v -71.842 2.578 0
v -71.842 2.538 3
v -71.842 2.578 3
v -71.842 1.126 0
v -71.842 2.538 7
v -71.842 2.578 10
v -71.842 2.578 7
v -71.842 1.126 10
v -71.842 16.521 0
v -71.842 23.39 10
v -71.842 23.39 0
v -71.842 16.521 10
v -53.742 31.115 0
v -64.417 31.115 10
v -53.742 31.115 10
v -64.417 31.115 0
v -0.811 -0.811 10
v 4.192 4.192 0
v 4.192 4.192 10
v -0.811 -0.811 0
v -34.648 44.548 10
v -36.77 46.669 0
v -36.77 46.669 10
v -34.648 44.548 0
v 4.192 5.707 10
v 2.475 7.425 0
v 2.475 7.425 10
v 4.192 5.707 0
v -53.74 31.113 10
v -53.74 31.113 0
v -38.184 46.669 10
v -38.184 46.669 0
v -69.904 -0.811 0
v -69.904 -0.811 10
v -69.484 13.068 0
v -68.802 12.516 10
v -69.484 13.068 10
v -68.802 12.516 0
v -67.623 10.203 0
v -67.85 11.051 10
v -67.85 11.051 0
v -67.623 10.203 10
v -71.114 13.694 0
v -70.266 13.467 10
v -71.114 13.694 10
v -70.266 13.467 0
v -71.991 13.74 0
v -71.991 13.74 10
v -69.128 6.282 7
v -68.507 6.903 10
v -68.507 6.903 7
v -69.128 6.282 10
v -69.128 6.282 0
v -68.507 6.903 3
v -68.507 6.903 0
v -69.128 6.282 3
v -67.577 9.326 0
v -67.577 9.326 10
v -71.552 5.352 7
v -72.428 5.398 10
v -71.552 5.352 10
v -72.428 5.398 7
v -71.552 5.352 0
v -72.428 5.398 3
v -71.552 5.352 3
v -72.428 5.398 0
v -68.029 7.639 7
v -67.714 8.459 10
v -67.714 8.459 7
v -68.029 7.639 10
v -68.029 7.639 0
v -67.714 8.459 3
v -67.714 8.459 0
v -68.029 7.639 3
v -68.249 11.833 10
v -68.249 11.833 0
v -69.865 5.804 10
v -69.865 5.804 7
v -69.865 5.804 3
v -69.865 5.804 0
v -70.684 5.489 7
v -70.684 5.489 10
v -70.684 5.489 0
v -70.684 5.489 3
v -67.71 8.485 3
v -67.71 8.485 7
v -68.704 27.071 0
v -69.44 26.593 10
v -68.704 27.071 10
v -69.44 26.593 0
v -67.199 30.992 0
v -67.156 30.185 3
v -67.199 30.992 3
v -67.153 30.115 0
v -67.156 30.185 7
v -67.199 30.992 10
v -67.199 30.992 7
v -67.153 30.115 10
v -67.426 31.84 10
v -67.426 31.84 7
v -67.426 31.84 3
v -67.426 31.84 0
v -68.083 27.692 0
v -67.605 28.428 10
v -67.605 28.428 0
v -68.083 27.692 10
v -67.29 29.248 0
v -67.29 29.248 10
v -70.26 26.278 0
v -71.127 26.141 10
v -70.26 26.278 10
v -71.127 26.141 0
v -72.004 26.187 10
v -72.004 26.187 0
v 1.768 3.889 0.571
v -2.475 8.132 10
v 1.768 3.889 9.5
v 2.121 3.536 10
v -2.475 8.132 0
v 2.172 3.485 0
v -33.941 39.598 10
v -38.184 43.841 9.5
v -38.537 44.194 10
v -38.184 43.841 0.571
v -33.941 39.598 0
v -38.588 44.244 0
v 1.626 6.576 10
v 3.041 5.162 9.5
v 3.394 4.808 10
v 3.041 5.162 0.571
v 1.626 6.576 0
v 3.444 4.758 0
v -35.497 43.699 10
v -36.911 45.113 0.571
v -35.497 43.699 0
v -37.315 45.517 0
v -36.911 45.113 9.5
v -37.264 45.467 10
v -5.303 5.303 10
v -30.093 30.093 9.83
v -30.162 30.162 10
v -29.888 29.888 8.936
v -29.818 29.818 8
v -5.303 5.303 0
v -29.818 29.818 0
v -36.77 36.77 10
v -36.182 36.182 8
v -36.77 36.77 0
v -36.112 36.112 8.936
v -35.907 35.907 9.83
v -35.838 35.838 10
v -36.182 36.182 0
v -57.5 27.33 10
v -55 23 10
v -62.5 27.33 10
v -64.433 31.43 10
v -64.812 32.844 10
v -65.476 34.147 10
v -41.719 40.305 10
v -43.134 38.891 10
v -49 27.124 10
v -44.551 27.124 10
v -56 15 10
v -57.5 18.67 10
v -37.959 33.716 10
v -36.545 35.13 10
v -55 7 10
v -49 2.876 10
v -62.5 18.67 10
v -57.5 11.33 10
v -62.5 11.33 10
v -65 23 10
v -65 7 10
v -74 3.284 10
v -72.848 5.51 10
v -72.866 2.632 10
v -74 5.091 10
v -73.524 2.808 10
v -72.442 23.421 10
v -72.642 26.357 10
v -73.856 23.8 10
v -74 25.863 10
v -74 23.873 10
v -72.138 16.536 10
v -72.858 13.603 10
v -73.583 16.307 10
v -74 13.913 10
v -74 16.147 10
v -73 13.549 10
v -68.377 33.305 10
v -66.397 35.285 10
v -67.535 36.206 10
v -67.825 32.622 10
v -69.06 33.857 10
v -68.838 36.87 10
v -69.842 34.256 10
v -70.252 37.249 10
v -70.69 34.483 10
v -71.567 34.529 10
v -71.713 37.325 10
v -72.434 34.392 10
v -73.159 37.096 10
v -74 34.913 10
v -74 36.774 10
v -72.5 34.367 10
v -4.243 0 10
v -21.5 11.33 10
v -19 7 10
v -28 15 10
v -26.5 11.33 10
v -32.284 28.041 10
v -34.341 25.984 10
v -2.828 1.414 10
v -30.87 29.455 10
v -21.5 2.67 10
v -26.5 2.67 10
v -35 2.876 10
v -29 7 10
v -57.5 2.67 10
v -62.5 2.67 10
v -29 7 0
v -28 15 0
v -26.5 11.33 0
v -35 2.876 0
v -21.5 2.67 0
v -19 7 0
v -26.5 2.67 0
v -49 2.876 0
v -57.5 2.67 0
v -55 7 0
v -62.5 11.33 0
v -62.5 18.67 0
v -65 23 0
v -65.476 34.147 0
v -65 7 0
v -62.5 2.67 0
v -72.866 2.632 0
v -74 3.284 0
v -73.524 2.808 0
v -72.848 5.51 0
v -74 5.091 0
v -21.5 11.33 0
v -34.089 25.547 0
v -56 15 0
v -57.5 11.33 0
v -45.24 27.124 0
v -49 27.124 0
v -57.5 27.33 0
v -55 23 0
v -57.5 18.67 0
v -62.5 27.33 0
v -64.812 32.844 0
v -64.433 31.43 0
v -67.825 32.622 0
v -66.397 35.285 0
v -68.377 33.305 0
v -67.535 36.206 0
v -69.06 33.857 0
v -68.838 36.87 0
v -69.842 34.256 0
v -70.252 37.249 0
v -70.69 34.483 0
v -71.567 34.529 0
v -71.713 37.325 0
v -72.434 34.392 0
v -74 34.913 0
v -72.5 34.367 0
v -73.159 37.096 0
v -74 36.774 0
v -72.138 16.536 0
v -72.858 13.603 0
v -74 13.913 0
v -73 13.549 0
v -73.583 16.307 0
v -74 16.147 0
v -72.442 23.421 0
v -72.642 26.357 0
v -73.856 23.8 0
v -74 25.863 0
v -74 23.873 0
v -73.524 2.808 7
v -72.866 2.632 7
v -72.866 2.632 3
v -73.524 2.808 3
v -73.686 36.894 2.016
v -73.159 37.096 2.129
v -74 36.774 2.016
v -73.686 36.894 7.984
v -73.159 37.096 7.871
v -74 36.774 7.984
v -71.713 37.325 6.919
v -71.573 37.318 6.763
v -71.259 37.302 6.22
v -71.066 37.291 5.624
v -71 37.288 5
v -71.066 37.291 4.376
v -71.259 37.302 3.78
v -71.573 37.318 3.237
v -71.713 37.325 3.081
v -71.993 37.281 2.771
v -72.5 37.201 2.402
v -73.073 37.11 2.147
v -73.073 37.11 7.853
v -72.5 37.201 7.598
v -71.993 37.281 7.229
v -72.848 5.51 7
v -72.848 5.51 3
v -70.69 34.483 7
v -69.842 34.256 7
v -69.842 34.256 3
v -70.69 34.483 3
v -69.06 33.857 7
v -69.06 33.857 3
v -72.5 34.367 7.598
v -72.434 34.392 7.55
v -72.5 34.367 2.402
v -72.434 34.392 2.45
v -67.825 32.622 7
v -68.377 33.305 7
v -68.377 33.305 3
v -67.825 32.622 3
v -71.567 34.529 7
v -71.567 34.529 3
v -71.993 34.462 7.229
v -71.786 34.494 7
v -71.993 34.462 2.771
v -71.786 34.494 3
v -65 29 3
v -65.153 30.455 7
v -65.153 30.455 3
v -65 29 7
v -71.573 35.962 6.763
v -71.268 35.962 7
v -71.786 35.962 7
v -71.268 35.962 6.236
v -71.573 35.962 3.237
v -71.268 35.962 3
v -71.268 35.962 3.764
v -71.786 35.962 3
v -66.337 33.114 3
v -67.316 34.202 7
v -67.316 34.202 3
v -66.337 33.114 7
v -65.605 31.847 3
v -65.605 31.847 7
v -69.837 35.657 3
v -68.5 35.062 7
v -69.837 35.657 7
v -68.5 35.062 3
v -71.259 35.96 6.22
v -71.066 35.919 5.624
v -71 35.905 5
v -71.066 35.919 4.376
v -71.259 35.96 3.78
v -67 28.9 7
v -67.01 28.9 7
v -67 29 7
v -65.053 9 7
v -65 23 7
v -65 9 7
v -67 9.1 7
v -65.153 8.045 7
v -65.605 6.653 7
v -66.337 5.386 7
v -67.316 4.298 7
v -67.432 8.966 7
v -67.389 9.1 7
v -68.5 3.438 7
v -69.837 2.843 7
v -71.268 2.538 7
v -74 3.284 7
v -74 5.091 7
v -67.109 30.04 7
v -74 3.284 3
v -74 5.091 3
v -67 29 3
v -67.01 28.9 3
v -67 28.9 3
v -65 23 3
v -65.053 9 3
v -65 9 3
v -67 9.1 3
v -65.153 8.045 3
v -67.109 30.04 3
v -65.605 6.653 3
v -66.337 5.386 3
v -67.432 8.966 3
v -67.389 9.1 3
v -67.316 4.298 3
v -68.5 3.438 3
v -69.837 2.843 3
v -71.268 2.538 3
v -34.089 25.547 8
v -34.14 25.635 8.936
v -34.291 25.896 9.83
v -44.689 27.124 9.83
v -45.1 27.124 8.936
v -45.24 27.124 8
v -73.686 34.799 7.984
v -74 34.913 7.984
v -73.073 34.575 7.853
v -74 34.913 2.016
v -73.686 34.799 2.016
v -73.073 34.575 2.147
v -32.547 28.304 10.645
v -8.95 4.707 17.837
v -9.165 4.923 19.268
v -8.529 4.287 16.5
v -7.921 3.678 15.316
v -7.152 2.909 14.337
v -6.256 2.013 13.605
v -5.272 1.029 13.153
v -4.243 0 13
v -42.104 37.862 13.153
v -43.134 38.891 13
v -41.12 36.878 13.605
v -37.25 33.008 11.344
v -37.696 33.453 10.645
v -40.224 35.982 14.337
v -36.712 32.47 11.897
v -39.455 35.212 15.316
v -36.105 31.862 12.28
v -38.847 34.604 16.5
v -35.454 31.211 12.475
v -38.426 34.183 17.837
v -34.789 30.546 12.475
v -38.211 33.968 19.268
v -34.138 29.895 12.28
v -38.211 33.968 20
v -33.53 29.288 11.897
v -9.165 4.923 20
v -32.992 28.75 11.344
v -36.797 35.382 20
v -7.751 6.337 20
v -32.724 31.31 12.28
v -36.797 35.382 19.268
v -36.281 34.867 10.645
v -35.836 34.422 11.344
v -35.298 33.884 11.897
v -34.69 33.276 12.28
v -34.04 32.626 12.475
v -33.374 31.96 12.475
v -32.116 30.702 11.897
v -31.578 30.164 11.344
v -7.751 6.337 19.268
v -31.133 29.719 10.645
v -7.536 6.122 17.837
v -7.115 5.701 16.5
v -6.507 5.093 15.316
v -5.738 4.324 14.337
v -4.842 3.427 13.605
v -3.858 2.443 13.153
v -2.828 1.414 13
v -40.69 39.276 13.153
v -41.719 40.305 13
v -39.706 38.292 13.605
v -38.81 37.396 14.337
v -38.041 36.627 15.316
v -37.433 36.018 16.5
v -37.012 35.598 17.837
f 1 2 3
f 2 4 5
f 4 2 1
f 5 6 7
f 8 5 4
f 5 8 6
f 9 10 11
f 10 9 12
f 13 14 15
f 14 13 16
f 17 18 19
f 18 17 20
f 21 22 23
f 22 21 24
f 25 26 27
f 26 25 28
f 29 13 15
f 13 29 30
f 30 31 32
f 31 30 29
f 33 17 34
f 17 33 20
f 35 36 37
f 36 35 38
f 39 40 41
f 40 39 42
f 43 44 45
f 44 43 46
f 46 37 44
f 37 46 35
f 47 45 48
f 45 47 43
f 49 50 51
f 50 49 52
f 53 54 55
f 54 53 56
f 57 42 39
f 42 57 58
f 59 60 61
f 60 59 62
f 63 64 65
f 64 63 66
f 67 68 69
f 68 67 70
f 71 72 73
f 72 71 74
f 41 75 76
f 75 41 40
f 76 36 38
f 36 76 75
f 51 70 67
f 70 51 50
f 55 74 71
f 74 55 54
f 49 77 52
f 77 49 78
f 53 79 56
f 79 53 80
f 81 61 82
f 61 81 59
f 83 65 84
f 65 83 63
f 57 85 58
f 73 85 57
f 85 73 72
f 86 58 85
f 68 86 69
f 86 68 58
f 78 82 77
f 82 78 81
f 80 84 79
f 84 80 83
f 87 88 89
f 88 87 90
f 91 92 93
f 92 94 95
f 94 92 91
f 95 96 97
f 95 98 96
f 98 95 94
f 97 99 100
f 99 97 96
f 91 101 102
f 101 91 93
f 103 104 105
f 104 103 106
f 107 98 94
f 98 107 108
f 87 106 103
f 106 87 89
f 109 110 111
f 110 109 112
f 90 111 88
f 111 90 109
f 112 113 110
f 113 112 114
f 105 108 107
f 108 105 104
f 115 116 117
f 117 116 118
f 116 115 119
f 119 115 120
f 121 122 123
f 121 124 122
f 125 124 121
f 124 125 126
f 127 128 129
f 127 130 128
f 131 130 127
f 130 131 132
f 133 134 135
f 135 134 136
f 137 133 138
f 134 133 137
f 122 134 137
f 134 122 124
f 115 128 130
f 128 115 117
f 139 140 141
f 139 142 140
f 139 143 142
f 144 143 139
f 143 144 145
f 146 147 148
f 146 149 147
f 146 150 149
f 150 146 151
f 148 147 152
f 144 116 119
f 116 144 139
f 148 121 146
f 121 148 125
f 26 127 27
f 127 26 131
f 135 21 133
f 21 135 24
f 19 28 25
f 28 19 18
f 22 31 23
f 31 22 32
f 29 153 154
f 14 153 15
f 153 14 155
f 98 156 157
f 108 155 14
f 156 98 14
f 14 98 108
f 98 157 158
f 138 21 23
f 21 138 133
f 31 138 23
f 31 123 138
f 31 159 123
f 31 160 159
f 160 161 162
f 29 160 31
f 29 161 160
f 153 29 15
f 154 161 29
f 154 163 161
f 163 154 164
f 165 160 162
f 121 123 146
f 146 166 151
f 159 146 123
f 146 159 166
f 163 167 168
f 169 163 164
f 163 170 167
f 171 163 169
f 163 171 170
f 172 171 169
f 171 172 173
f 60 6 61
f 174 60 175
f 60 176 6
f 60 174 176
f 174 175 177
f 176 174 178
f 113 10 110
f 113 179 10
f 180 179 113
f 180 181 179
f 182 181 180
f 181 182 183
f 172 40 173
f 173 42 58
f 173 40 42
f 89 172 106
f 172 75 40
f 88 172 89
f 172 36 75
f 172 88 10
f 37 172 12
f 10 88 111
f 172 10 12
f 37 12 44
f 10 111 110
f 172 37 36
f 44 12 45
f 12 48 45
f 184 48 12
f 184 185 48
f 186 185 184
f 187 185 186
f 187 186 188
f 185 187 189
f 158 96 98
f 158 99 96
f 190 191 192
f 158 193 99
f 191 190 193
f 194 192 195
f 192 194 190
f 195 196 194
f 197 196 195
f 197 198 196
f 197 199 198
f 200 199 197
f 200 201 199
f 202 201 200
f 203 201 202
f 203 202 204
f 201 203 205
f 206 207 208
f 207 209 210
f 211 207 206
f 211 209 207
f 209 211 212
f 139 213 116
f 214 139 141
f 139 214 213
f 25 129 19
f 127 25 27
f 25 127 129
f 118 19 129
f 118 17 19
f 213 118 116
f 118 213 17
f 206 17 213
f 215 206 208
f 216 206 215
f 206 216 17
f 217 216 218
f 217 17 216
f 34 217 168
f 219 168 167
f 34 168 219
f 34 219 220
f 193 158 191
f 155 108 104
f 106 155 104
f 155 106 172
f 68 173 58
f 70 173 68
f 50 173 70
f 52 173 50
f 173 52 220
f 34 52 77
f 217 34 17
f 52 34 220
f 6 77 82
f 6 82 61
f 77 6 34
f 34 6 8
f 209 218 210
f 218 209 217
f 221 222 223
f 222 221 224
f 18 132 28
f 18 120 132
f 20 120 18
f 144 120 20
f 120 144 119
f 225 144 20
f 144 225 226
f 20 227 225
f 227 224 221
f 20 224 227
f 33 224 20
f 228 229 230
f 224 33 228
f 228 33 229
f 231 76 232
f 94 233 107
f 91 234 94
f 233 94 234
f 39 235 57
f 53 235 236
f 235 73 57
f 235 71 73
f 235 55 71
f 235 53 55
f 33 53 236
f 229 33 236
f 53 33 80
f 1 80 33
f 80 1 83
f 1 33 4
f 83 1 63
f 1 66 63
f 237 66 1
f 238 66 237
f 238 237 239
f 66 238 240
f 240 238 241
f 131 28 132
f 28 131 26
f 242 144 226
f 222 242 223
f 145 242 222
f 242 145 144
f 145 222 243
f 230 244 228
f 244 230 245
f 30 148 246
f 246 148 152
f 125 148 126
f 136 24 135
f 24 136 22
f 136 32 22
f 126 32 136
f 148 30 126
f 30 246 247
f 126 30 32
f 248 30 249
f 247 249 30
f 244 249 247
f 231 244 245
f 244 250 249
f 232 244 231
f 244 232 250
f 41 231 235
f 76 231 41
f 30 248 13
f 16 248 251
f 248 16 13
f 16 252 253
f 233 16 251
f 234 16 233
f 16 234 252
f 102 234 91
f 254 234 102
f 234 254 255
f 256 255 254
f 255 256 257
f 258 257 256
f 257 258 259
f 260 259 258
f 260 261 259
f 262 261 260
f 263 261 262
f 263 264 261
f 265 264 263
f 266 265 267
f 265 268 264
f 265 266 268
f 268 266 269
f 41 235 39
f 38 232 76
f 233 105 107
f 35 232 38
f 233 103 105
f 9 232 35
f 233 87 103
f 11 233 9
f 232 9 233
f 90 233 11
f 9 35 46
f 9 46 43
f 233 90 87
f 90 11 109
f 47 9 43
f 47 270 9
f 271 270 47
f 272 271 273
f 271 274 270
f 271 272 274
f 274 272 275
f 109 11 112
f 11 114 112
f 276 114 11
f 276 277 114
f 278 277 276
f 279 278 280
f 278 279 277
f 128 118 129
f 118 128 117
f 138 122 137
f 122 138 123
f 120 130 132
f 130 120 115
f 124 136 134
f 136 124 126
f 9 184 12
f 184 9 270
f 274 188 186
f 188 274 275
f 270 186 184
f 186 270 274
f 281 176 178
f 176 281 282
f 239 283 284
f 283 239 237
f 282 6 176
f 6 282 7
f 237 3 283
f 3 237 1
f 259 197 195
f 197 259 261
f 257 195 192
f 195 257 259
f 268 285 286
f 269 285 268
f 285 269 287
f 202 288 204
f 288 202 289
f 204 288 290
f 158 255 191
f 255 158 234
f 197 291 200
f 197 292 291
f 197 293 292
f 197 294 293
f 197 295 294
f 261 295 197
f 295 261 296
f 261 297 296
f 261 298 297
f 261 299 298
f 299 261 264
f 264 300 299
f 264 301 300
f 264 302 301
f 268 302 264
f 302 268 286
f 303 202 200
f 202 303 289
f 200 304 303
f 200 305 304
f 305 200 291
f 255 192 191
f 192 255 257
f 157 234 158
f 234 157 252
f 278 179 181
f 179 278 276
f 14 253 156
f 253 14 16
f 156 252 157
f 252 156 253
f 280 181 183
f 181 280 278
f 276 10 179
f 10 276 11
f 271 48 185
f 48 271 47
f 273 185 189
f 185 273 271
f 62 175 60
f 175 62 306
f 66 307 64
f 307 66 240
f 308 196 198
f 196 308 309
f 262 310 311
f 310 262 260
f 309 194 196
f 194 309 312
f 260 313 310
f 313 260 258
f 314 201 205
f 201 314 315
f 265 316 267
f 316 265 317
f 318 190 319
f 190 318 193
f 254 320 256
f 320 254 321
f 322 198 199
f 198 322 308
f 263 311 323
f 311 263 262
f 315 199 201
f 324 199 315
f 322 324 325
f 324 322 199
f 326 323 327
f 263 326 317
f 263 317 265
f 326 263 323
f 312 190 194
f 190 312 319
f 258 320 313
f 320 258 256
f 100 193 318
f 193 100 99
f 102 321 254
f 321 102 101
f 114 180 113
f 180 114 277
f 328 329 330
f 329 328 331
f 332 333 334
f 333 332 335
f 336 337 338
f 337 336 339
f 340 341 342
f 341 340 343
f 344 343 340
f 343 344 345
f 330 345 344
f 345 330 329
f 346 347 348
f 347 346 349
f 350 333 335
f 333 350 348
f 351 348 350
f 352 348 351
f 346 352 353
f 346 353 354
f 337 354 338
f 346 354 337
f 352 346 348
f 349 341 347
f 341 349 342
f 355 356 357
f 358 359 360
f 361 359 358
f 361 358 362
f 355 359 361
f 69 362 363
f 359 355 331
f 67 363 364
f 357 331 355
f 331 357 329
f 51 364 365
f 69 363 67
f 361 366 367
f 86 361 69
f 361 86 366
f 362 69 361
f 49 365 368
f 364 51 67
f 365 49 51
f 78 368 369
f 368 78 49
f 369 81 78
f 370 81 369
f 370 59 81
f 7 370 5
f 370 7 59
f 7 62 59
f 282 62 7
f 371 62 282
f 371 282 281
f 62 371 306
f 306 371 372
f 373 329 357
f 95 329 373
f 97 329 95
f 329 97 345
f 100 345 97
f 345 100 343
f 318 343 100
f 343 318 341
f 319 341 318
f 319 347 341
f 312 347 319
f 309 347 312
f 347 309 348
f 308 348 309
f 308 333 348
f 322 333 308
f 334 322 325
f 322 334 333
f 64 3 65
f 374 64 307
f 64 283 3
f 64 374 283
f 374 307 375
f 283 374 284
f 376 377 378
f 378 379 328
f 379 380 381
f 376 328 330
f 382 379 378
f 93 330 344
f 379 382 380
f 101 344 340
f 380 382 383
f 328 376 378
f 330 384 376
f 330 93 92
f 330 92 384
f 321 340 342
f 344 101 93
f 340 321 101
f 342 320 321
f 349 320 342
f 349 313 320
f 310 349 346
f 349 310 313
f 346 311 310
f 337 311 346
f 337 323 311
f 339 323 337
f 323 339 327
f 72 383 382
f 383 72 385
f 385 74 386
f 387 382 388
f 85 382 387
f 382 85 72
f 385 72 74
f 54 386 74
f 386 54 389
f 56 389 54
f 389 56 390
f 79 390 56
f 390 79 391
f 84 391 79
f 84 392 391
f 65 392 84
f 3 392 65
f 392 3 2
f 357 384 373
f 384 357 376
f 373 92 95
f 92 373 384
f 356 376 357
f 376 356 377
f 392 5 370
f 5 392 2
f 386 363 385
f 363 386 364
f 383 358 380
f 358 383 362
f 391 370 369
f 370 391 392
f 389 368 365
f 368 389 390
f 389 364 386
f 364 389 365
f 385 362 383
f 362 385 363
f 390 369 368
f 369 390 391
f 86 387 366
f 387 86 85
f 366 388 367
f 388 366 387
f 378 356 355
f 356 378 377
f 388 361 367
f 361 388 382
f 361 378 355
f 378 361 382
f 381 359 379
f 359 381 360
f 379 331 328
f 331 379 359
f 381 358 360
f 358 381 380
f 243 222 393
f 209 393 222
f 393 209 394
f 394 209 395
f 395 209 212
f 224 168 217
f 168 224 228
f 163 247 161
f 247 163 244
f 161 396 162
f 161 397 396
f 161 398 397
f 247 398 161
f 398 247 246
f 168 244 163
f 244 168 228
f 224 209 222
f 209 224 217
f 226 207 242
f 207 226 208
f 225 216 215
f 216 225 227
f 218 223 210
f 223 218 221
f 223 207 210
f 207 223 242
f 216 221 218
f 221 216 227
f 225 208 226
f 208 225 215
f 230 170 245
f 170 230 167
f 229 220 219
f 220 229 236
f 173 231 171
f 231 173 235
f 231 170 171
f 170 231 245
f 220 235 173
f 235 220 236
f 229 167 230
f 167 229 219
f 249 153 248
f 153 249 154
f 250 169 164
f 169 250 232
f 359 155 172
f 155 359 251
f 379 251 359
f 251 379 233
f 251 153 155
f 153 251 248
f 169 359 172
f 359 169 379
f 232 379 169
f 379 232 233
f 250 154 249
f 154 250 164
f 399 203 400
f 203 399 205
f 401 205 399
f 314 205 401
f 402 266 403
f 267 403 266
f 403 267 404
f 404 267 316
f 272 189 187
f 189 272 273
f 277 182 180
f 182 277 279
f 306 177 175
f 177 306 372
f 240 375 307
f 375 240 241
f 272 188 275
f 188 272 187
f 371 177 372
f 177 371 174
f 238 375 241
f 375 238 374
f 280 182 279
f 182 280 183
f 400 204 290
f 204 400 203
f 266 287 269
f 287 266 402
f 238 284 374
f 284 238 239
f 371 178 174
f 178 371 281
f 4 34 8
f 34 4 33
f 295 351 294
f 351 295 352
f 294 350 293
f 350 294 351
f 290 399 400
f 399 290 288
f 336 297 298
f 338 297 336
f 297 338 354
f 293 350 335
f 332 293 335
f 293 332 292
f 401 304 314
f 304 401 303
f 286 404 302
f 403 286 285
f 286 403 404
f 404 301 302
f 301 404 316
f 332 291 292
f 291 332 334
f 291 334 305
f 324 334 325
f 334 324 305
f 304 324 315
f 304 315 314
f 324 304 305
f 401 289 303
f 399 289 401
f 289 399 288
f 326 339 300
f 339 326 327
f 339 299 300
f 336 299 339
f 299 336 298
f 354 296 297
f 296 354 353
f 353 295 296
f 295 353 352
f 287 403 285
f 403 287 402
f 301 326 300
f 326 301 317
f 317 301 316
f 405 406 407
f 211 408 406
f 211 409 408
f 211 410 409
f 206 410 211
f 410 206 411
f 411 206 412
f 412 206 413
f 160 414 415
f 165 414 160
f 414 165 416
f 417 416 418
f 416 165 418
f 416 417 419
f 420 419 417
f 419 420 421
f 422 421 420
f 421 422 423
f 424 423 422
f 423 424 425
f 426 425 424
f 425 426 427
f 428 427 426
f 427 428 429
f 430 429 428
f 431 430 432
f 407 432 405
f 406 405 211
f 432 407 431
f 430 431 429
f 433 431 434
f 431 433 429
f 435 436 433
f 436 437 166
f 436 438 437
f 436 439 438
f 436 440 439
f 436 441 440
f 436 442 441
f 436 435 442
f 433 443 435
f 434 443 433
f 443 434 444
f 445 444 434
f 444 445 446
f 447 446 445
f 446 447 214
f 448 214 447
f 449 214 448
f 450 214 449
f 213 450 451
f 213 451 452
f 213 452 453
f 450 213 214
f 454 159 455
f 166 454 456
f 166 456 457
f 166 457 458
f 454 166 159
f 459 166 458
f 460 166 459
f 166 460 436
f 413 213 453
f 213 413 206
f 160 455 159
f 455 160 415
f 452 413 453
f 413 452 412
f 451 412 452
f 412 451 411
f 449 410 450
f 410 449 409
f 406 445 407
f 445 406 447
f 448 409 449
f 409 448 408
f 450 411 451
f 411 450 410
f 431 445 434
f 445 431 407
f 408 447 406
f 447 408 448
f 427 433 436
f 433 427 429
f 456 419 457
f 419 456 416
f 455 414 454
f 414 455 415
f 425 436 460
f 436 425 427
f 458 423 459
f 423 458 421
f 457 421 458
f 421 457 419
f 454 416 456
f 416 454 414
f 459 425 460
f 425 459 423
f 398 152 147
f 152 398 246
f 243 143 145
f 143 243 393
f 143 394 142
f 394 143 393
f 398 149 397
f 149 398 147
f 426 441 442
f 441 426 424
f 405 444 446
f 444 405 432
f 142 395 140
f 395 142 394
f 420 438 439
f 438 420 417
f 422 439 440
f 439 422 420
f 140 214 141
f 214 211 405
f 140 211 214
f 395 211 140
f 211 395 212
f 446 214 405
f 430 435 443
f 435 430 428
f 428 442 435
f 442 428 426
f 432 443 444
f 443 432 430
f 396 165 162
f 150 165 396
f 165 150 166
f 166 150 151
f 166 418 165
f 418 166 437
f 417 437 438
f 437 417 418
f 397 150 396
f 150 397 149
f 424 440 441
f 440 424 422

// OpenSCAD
// file: lcd-support-A.scad
// PRUSA iteration3
// lcd-support-A
// GNU GPL v3
// Josef Průša <iam@josefprusa.cz> and contributors
// http://www.reprap.org/wiki/Prusa_Mendel
// http://prusamendel.org

isMetric=true;


module body(){

difference() {
    
    union(){
        translate( [ -55, -2 , 0 ] ) cube( [ 69 , 81 , 10 ] ); 
    }
    
    union (){

    // outer body shape
    translate( [ -69.6, 32, -1 ] ) rotate([0,0,45]) cube( [ 60 , 53 , 15 ] ); 
    translate( [ 13.7, 89.7, -1 ] ) rotate([0,0,135]) cube( [ 60 , 42 , 15 ] );
    translate( [ -19, -9, -1 ] ) cube( [ 60 , 9 , 15 ] );   
    translate( [ 7, -3, -1 ] ) cube( [ 60 , 68 , 16 ] );  
    translate( [ -16, 60, -1 ] ) cube( [ 60 , 50 , 15 ] );
    translate( [ -41, -45, -1 ] ) rotate([0,0,45]) cube( [ 60 , 80 , 13 ] );  
        
    // threaded rods opening
    translate( [ -44 , 57.5 , -1 ] ) cylinder( h = 17, r = 4.2, $fn=30);  
    translate( [ -29 , 71.9 , -1 ] ) cylinder( h = 17, r = 4.2, $fn=30);  

    // pcb cout out
    translate( [ 4 , 1.5 , -1 ] ) cube( [ 1.8 , 56.5 , 17 ] ); 
    translate( [ 0 , 7.5 , -1 ] ) cube( [ 5.8 , 44.5 , 17 ] ); 
    translate( [ 4.8 , 3.5 , -1 ] ) cube( [ 5.8 , 52.5 , 17 ] );

    translate( [ 8 , -5 , -1 ] ) rotate([0,0,45]) cube( [ 5 , 5 , 17 ] );
    translate( [ 8 , 58 , -1 ] ) rotate([0,0,45]) cube( [ 5 , 5 , 17 ] );
        
    }

    // pcb inserts
    translate( [ 4, 3 , 8 ] ) rotate([45,0,0]) cube( [ 1.8 , 5 , 5 ] ); 
    translate( [ 4, 56.5 , 8 ] ) rotate([45,0,0]) cube( [ 1.8 , 5 , 5 ] );     
    translate( [ 4, 3 , -5 ] ) rotate([45,0,0]) cube( [ 1.8 , 5 , 5 ] ); 
    translate( [ 4, 56.5 , -5 ] ) rotate([45,0,0]) cube( [ 1.8 , 5 , 5 ] );     
    
}

 
difference(){
    union(){
        translate( [ -44 , 57.5 , 0 ] ) cylinder( h = 10, r = 7, $fn=30); 
        translate( [ -29 , 71.9 , 0 ] ) cylinder( h = 10, r =7 , $fn=30); 
    }
        translate( [ -44 , 57.5 , -1 ] ) cylinder( h = 17, r = 4.2, $fn=30);
        translate( [ -29 , 71.9 , -1 ] ) cylinder( h = 17, r = 4.2, $fn=30);
}
}



module ziptie()
{
difference()
{
  union(){
    difference(){
        translate( [ -72 , 29 , 3 ] ) cylinder( h = 4, r = 7, $fn=30);
        translate( [ -72 , 29 , 3 ] ) cylinder( h = 4, r = 5, $fn=30);
    }
    difference(){
        translate( [ -72 , 9.5 , 3 ] ) cylinder( h = 4, r = 7, $fn=30);
        translate( [ -72 , 11 , 3 ] ) cylinder( h = 4, r = 5, $fn=30); 
    }
    }
    translate( [ -80 , 9.1 , 3 ] )  cube( [ 15 , 19.8 , 4 ] );  
    }
    
    translate( [ -67 , 9 , 3 ] )  cube( [ 2 , 20 , 4 ] ); 
}
    




module lcd_support_A() {  // NV: modularize it!

  difference() {
      
  rotate([0,0,45]) body();

  // lightening holes
  translate( [ -42 , 15 , -1 ] ) cylinder( h = 15, r = 14, $fn=6);  
  translate( [ -24 , 7 , -1 ] ) cylinder( h = 15, r = 5, $fn=6);  
  translate( [ -60 , 7 , -1 ] ) cylinder( h = 15, r = 5, $fn=6);  
  translate( [ -60 , 23 , -1 ] ) cylinder( h = 15, r = 5, $fn=6);  
      
  // threaded rods corners
  translate( [ -71 , 28.5 , -1 ] ) rotate([0,0,70]) cube( [ 5 , 10 , 15 ] );   
  translate( [ -71 , 7.5 , -1 ] ) rotate([0,0,70]) cube( [ 5 , 10 , 15 ] );      
  translate( [ -80 , 29, -1 ] ) rotate([0,0,-70]) cube( [ 5 , 10 , 15 ] );   
  translate( [ -82 , 7.5 , -1 ] ) rotate([0,0,-70]) cube( [ 5 , 10 , 15 ] );      
  translate( [ -86 , 0 , -1 ] ) cube( [ 12 , 50 , 15 ] );  
  translate( [ -83 , -16 , -1 ] ) rotate([0,0,45]) cube( [ 20 , 20 , 15 ] );  

  ziptie();
  // ziptie head cutout
  translate( [ -74 , 38 , 5 ] ) rotate([90,0,0]) cylinder( h = 5, r = 3, $fn=30);  
  }  
}

lcd_support_A(); // NV: modularize it!
// main file
// PRUSA iteration3
// lcd-support-B
// GNU GPL v3
// Josef Průša <iam@josefprusa.cz> and contributors
// http://www.reprap.org/wiki/Prusa_Mendel
// http://prusamendel.org

// NV: Support for the standard reprap discount smart controller.
//     - added clearance for the variable pot that appears on the back of the display

use<lcd-support-A.scad>;

//%translate([-80.5,-2.3,0]) import("../../stl/LCD-holder-B.stl");

//SD card cover
module lcd_support_B() {
  rotate([0,0,45]) difference(){
  translate( [ -3 , 3 , 10 ] )  cube( [ 2 , 55 , 10 ] ); 
  translate( [ -4 , 3 , 20 ] ) rotate([0,90,0]) cylinder( h = 4, r = 7, $fn=30); 
  translate( [ -4 , 58 , 20 ] ) rotate([0,90,0]) cylinder( h = 4, r = 7, $fn=30); 
 } 
}

module cut() {
    translate([-25,41,8]) rotate([90,0,-45]) {
    translate([0,-4.5,12.5]) cube([9,9,30], center=true);
    cylinder(h=25,r=4.5, $fn=30);
  }      

}
difference() {
  union() {
    lcd_support_A();
    lcd_support_B();
  }
  cut();
}
